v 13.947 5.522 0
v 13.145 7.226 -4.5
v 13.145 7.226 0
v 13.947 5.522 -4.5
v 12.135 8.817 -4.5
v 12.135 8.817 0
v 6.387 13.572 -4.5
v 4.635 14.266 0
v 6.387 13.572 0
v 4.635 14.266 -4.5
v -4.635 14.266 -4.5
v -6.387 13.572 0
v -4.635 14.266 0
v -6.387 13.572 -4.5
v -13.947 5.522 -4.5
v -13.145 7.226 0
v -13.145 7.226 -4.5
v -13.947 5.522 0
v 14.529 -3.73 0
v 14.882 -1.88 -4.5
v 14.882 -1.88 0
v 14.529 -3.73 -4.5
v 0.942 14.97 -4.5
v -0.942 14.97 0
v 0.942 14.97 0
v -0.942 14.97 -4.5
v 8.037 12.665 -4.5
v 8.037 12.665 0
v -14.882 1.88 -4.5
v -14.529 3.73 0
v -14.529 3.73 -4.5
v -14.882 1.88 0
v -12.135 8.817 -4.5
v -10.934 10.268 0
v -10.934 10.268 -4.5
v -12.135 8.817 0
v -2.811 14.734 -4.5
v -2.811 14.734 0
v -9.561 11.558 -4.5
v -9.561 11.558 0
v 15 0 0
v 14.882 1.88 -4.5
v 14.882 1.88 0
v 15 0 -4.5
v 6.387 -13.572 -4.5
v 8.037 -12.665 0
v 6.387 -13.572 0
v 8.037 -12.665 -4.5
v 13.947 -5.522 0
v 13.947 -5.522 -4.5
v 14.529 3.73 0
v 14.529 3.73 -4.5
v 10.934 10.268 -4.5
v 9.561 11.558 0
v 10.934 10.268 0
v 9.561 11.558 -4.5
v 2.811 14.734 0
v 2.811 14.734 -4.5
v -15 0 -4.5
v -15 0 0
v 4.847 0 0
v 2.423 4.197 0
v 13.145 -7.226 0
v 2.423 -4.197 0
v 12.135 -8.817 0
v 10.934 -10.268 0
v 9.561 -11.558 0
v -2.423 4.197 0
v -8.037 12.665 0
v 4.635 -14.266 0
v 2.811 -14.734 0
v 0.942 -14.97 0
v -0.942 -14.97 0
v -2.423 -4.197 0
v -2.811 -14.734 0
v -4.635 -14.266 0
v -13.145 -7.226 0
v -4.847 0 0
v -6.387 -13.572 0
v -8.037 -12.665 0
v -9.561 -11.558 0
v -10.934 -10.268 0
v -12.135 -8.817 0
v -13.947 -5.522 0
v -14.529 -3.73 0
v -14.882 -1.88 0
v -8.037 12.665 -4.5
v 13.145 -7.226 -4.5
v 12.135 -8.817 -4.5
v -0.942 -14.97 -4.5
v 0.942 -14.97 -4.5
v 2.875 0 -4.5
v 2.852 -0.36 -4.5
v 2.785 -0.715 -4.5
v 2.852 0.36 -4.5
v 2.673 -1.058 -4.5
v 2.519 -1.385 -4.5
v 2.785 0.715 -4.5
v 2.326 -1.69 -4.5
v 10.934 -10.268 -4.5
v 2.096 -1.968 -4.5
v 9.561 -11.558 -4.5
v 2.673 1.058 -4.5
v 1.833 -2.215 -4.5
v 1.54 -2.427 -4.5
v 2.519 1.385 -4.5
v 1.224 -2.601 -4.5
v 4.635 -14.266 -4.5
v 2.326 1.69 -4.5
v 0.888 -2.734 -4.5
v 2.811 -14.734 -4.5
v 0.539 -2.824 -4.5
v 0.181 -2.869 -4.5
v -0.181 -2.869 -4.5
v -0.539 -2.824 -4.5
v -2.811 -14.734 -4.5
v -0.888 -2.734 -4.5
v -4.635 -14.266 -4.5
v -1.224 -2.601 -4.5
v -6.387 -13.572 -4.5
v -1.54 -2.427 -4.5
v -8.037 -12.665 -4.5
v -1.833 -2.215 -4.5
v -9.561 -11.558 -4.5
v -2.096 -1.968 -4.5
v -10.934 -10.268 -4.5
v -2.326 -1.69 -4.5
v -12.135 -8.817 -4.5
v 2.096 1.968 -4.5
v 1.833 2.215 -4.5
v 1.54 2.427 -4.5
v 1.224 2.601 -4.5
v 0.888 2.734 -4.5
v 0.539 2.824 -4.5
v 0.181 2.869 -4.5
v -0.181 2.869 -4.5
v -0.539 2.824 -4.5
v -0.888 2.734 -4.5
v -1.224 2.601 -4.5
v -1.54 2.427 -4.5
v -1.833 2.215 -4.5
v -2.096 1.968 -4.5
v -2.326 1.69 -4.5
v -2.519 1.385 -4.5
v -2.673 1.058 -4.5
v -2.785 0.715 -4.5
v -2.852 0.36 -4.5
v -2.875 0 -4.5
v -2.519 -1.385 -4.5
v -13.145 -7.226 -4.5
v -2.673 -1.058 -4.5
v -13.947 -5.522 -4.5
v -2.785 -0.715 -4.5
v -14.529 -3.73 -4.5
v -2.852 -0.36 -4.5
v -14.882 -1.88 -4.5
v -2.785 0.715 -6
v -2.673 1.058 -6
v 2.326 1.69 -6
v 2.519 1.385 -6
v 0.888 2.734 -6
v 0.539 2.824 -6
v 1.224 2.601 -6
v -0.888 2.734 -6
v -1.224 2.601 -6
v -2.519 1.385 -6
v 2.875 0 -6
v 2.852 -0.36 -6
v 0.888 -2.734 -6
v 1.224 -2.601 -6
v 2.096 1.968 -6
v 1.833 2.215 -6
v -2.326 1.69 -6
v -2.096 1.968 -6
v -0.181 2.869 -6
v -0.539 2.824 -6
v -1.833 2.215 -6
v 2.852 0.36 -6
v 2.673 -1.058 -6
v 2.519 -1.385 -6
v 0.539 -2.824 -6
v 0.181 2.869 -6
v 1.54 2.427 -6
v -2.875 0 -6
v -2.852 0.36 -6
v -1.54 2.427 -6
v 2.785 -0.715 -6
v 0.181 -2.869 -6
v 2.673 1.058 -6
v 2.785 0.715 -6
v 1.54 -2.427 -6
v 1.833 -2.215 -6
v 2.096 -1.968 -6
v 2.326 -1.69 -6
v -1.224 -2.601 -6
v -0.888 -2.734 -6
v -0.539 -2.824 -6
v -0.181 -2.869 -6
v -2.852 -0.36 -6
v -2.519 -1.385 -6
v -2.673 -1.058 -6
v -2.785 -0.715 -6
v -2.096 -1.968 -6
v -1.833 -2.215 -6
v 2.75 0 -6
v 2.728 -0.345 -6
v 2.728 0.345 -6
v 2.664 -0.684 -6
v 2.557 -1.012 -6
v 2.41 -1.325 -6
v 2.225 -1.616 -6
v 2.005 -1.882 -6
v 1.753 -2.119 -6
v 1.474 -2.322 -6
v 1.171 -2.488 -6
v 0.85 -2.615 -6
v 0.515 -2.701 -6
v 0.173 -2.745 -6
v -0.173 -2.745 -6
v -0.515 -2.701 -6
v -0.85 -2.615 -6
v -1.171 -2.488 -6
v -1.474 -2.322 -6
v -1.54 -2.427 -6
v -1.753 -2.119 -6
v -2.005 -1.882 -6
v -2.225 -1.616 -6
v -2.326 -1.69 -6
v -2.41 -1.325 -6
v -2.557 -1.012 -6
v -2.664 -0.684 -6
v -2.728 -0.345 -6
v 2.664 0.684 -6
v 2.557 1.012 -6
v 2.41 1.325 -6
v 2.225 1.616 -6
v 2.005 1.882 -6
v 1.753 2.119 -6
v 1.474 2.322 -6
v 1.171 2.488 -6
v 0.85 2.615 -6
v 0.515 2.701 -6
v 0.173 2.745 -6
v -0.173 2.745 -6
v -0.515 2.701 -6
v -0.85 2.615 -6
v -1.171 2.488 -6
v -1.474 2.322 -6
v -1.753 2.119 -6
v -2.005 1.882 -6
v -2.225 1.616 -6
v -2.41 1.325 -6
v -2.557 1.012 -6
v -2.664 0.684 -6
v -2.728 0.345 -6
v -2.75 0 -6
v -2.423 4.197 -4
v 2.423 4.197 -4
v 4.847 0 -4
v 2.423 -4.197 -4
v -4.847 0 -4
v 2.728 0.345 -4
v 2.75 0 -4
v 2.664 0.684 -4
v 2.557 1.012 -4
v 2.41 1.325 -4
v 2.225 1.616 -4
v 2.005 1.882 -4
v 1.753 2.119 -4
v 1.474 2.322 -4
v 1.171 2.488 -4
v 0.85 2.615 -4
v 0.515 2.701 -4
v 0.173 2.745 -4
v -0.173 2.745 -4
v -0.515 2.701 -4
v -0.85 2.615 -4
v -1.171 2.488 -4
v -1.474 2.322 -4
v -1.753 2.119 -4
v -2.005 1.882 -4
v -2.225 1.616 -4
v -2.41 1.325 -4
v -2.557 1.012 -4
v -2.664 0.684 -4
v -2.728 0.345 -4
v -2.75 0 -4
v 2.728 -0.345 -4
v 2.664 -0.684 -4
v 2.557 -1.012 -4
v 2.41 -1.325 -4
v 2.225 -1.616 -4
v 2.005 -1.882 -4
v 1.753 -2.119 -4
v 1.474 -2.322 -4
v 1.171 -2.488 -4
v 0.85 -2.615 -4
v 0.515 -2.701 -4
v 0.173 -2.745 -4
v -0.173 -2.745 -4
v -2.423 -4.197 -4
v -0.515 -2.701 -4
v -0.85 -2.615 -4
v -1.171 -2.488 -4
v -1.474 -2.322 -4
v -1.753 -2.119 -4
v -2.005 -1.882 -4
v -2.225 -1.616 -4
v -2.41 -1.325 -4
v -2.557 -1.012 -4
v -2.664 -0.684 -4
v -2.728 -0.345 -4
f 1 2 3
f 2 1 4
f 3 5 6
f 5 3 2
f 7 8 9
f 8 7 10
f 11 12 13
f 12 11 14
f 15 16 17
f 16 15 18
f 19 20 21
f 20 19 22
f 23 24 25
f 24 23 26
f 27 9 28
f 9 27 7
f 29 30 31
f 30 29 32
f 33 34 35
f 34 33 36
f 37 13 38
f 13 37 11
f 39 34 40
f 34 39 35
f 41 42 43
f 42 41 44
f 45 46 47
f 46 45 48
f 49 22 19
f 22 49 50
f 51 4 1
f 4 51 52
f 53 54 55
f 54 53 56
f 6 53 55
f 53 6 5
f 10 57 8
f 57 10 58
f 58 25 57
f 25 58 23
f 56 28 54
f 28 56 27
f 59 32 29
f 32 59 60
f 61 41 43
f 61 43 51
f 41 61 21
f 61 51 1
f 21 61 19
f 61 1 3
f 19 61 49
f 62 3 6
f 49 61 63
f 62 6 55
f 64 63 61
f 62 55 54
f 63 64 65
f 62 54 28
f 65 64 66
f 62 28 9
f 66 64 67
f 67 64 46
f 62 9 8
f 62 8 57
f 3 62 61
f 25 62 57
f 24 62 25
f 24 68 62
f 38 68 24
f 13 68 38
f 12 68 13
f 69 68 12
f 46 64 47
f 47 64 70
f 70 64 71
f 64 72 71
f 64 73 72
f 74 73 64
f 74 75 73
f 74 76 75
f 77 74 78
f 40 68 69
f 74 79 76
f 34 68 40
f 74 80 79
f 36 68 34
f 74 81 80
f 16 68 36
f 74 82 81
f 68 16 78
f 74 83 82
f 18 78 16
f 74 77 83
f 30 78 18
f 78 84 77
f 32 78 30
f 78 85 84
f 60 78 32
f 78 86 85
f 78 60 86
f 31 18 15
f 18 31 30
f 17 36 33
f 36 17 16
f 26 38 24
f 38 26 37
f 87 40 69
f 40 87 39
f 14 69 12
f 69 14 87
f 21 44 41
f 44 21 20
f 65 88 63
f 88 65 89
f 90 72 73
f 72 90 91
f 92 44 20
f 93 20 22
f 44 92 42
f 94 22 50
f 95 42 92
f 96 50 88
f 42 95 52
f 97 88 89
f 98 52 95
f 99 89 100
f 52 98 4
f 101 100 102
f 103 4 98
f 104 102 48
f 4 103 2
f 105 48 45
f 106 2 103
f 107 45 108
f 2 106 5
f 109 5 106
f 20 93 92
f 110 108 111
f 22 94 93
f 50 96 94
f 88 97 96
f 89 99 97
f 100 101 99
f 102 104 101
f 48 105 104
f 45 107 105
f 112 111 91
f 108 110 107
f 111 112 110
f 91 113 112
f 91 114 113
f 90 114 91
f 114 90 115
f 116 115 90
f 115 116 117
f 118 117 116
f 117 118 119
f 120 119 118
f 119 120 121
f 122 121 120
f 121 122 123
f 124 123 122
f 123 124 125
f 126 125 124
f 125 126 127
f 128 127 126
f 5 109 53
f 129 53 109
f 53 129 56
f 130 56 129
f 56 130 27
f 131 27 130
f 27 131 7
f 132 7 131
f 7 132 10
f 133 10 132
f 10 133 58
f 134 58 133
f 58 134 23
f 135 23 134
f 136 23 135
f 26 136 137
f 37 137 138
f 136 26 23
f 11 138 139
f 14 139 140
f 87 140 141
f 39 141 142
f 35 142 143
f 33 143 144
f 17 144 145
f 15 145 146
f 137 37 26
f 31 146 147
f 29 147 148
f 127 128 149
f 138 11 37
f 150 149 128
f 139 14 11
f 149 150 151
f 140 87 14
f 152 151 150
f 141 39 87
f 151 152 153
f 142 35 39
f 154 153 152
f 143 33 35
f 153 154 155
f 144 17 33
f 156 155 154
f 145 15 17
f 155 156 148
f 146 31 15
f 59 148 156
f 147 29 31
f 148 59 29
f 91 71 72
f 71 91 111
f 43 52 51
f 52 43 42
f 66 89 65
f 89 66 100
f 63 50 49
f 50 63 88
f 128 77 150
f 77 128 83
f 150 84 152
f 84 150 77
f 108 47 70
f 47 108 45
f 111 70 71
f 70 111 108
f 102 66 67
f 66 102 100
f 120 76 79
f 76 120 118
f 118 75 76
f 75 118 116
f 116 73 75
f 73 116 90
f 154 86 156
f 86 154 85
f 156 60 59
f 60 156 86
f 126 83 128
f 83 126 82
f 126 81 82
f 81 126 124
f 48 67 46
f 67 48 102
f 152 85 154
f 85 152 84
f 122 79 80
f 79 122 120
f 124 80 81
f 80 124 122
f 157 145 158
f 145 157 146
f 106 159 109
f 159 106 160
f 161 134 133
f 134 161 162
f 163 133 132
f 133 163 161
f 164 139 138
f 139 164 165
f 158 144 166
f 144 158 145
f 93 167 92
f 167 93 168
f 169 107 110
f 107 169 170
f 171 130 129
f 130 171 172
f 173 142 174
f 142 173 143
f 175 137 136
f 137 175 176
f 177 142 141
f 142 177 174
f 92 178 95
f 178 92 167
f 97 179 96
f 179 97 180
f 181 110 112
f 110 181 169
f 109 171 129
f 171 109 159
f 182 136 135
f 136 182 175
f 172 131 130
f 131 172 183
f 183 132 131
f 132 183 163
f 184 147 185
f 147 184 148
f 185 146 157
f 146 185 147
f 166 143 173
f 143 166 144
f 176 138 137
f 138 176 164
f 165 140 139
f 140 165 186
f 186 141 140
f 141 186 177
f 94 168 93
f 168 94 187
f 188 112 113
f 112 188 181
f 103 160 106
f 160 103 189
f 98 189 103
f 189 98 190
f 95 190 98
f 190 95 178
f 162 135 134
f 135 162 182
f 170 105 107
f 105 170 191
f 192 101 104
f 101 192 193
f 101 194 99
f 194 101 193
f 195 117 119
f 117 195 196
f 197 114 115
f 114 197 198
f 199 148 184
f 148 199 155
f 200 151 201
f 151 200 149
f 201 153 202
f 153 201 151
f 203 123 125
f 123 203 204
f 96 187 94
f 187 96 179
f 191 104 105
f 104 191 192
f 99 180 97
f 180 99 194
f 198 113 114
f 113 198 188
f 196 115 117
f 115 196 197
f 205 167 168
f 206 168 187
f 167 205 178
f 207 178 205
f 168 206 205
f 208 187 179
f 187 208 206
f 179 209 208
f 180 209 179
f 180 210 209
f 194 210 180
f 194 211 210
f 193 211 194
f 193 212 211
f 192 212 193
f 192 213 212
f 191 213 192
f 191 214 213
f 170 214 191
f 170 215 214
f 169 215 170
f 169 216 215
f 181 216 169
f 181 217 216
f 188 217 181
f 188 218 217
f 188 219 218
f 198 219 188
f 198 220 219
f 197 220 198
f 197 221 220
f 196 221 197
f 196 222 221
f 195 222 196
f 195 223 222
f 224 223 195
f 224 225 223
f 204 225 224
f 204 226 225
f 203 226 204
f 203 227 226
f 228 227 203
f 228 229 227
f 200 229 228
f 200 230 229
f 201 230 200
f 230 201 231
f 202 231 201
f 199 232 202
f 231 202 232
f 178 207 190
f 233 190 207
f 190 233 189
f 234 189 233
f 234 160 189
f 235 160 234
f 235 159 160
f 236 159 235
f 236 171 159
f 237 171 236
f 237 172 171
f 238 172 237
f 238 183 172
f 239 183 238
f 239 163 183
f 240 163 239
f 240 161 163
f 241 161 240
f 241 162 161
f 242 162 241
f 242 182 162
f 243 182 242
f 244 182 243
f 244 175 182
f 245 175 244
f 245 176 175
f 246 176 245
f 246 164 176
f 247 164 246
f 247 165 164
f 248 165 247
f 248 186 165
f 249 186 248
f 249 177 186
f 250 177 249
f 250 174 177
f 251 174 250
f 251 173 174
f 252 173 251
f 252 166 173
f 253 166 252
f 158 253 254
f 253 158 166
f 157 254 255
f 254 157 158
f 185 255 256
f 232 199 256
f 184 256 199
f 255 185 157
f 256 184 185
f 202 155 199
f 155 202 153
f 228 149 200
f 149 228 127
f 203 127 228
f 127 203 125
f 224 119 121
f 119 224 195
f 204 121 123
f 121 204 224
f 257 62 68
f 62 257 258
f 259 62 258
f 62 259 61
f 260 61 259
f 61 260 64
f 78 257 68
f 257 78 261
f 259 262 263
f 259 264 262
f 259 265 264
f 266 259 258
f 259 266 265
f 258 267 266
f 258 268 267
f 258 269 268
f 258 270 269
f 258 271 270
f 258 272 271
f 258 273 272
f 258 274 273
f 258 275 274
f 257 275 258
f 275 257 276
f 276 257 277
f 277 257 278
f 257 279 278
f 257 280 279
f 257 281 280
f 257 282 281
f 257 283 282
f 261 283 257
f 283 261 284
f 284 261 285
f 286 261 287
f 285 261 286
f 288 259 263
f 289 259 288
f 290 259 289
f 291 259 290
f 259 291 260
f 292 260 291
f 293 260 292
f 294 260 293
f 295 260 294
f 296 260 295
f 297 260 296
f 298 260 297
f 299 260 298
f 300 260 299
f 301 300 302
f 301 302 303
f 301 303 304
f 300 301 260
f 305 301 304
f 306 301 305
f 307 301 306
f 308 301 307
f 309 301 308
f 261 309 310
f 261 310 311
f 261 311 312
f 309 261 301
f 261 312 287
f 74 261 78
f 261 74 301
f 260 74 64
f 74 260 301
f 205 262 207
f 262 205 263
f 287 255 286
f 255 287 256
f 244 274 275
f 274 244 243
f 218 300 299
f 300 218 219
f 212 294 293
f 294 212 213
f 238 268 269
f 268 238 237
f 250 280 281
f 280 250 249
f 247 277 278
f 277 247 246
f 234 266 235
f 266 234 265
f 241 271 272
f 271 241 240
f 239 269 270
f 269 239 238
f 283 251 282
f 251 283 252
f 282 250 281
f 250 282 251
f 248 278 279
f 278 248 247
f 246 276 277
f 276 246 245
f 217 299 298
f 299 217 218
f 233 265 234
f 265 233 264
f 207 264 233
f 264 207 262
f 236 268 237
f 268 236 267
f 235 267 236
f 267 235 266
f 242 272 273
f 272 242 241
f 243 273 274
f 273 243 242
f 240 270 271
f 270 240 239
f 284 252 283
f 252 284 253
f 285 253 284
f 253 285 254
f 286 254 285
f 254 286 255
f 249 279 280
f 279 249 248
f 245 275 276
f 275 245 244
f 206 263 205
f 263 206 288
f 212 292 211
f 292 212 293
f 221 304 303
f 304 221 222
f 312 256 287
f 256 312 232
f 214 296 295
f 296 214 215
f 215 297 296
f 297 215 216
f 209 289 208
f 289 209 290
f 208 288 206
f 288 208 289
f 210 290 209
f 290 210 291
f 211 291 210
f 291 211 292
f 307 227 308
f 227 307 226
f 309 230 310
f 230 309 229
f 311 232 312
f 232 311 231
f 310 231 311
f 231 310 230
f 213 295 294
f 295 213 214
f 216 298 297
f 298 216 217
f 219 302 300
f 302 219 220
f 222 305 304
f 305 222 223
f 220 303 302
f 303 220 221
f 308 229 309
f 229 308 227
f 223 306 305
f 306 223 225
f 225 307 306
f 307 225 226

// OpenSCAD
$fn = 50;


difference() {
	union() {
		translate(v = [0, 0, -4.5000000000]) {
			cylinder(h = 4.5000000000, r = 15.0000000000);
		}
		#translate(v = [0, 0, -6.0000000000]) {
			cylinder(h = 6, r = 2.8750000000);
		}
	}
	union() {
		translate(v = [0, 0, 0]) {
			rotate(a = [0, 0, 0]) {
				difference() {
					union() {
						translate(v = [0, 0, -4]) {
							linear_extrude(height = 4) {
								polygon(points = [[4.8468000000, 0.0000000000], [2.4234000000, 4.1974519271], [-2.4234000000, 4.1974519271], [-4.8468000000, 0.0000000000], [-2.4234000000, -4.1974519271], [2.4234000000, -4.1974519271]]);
							}
						}
					}
					union();
				}
			}
		}
		#translate(v = [0, 0, -100.0000000000]) {
			cylinder(h = 200, r = 2.7500000000);
		}
	}
}
